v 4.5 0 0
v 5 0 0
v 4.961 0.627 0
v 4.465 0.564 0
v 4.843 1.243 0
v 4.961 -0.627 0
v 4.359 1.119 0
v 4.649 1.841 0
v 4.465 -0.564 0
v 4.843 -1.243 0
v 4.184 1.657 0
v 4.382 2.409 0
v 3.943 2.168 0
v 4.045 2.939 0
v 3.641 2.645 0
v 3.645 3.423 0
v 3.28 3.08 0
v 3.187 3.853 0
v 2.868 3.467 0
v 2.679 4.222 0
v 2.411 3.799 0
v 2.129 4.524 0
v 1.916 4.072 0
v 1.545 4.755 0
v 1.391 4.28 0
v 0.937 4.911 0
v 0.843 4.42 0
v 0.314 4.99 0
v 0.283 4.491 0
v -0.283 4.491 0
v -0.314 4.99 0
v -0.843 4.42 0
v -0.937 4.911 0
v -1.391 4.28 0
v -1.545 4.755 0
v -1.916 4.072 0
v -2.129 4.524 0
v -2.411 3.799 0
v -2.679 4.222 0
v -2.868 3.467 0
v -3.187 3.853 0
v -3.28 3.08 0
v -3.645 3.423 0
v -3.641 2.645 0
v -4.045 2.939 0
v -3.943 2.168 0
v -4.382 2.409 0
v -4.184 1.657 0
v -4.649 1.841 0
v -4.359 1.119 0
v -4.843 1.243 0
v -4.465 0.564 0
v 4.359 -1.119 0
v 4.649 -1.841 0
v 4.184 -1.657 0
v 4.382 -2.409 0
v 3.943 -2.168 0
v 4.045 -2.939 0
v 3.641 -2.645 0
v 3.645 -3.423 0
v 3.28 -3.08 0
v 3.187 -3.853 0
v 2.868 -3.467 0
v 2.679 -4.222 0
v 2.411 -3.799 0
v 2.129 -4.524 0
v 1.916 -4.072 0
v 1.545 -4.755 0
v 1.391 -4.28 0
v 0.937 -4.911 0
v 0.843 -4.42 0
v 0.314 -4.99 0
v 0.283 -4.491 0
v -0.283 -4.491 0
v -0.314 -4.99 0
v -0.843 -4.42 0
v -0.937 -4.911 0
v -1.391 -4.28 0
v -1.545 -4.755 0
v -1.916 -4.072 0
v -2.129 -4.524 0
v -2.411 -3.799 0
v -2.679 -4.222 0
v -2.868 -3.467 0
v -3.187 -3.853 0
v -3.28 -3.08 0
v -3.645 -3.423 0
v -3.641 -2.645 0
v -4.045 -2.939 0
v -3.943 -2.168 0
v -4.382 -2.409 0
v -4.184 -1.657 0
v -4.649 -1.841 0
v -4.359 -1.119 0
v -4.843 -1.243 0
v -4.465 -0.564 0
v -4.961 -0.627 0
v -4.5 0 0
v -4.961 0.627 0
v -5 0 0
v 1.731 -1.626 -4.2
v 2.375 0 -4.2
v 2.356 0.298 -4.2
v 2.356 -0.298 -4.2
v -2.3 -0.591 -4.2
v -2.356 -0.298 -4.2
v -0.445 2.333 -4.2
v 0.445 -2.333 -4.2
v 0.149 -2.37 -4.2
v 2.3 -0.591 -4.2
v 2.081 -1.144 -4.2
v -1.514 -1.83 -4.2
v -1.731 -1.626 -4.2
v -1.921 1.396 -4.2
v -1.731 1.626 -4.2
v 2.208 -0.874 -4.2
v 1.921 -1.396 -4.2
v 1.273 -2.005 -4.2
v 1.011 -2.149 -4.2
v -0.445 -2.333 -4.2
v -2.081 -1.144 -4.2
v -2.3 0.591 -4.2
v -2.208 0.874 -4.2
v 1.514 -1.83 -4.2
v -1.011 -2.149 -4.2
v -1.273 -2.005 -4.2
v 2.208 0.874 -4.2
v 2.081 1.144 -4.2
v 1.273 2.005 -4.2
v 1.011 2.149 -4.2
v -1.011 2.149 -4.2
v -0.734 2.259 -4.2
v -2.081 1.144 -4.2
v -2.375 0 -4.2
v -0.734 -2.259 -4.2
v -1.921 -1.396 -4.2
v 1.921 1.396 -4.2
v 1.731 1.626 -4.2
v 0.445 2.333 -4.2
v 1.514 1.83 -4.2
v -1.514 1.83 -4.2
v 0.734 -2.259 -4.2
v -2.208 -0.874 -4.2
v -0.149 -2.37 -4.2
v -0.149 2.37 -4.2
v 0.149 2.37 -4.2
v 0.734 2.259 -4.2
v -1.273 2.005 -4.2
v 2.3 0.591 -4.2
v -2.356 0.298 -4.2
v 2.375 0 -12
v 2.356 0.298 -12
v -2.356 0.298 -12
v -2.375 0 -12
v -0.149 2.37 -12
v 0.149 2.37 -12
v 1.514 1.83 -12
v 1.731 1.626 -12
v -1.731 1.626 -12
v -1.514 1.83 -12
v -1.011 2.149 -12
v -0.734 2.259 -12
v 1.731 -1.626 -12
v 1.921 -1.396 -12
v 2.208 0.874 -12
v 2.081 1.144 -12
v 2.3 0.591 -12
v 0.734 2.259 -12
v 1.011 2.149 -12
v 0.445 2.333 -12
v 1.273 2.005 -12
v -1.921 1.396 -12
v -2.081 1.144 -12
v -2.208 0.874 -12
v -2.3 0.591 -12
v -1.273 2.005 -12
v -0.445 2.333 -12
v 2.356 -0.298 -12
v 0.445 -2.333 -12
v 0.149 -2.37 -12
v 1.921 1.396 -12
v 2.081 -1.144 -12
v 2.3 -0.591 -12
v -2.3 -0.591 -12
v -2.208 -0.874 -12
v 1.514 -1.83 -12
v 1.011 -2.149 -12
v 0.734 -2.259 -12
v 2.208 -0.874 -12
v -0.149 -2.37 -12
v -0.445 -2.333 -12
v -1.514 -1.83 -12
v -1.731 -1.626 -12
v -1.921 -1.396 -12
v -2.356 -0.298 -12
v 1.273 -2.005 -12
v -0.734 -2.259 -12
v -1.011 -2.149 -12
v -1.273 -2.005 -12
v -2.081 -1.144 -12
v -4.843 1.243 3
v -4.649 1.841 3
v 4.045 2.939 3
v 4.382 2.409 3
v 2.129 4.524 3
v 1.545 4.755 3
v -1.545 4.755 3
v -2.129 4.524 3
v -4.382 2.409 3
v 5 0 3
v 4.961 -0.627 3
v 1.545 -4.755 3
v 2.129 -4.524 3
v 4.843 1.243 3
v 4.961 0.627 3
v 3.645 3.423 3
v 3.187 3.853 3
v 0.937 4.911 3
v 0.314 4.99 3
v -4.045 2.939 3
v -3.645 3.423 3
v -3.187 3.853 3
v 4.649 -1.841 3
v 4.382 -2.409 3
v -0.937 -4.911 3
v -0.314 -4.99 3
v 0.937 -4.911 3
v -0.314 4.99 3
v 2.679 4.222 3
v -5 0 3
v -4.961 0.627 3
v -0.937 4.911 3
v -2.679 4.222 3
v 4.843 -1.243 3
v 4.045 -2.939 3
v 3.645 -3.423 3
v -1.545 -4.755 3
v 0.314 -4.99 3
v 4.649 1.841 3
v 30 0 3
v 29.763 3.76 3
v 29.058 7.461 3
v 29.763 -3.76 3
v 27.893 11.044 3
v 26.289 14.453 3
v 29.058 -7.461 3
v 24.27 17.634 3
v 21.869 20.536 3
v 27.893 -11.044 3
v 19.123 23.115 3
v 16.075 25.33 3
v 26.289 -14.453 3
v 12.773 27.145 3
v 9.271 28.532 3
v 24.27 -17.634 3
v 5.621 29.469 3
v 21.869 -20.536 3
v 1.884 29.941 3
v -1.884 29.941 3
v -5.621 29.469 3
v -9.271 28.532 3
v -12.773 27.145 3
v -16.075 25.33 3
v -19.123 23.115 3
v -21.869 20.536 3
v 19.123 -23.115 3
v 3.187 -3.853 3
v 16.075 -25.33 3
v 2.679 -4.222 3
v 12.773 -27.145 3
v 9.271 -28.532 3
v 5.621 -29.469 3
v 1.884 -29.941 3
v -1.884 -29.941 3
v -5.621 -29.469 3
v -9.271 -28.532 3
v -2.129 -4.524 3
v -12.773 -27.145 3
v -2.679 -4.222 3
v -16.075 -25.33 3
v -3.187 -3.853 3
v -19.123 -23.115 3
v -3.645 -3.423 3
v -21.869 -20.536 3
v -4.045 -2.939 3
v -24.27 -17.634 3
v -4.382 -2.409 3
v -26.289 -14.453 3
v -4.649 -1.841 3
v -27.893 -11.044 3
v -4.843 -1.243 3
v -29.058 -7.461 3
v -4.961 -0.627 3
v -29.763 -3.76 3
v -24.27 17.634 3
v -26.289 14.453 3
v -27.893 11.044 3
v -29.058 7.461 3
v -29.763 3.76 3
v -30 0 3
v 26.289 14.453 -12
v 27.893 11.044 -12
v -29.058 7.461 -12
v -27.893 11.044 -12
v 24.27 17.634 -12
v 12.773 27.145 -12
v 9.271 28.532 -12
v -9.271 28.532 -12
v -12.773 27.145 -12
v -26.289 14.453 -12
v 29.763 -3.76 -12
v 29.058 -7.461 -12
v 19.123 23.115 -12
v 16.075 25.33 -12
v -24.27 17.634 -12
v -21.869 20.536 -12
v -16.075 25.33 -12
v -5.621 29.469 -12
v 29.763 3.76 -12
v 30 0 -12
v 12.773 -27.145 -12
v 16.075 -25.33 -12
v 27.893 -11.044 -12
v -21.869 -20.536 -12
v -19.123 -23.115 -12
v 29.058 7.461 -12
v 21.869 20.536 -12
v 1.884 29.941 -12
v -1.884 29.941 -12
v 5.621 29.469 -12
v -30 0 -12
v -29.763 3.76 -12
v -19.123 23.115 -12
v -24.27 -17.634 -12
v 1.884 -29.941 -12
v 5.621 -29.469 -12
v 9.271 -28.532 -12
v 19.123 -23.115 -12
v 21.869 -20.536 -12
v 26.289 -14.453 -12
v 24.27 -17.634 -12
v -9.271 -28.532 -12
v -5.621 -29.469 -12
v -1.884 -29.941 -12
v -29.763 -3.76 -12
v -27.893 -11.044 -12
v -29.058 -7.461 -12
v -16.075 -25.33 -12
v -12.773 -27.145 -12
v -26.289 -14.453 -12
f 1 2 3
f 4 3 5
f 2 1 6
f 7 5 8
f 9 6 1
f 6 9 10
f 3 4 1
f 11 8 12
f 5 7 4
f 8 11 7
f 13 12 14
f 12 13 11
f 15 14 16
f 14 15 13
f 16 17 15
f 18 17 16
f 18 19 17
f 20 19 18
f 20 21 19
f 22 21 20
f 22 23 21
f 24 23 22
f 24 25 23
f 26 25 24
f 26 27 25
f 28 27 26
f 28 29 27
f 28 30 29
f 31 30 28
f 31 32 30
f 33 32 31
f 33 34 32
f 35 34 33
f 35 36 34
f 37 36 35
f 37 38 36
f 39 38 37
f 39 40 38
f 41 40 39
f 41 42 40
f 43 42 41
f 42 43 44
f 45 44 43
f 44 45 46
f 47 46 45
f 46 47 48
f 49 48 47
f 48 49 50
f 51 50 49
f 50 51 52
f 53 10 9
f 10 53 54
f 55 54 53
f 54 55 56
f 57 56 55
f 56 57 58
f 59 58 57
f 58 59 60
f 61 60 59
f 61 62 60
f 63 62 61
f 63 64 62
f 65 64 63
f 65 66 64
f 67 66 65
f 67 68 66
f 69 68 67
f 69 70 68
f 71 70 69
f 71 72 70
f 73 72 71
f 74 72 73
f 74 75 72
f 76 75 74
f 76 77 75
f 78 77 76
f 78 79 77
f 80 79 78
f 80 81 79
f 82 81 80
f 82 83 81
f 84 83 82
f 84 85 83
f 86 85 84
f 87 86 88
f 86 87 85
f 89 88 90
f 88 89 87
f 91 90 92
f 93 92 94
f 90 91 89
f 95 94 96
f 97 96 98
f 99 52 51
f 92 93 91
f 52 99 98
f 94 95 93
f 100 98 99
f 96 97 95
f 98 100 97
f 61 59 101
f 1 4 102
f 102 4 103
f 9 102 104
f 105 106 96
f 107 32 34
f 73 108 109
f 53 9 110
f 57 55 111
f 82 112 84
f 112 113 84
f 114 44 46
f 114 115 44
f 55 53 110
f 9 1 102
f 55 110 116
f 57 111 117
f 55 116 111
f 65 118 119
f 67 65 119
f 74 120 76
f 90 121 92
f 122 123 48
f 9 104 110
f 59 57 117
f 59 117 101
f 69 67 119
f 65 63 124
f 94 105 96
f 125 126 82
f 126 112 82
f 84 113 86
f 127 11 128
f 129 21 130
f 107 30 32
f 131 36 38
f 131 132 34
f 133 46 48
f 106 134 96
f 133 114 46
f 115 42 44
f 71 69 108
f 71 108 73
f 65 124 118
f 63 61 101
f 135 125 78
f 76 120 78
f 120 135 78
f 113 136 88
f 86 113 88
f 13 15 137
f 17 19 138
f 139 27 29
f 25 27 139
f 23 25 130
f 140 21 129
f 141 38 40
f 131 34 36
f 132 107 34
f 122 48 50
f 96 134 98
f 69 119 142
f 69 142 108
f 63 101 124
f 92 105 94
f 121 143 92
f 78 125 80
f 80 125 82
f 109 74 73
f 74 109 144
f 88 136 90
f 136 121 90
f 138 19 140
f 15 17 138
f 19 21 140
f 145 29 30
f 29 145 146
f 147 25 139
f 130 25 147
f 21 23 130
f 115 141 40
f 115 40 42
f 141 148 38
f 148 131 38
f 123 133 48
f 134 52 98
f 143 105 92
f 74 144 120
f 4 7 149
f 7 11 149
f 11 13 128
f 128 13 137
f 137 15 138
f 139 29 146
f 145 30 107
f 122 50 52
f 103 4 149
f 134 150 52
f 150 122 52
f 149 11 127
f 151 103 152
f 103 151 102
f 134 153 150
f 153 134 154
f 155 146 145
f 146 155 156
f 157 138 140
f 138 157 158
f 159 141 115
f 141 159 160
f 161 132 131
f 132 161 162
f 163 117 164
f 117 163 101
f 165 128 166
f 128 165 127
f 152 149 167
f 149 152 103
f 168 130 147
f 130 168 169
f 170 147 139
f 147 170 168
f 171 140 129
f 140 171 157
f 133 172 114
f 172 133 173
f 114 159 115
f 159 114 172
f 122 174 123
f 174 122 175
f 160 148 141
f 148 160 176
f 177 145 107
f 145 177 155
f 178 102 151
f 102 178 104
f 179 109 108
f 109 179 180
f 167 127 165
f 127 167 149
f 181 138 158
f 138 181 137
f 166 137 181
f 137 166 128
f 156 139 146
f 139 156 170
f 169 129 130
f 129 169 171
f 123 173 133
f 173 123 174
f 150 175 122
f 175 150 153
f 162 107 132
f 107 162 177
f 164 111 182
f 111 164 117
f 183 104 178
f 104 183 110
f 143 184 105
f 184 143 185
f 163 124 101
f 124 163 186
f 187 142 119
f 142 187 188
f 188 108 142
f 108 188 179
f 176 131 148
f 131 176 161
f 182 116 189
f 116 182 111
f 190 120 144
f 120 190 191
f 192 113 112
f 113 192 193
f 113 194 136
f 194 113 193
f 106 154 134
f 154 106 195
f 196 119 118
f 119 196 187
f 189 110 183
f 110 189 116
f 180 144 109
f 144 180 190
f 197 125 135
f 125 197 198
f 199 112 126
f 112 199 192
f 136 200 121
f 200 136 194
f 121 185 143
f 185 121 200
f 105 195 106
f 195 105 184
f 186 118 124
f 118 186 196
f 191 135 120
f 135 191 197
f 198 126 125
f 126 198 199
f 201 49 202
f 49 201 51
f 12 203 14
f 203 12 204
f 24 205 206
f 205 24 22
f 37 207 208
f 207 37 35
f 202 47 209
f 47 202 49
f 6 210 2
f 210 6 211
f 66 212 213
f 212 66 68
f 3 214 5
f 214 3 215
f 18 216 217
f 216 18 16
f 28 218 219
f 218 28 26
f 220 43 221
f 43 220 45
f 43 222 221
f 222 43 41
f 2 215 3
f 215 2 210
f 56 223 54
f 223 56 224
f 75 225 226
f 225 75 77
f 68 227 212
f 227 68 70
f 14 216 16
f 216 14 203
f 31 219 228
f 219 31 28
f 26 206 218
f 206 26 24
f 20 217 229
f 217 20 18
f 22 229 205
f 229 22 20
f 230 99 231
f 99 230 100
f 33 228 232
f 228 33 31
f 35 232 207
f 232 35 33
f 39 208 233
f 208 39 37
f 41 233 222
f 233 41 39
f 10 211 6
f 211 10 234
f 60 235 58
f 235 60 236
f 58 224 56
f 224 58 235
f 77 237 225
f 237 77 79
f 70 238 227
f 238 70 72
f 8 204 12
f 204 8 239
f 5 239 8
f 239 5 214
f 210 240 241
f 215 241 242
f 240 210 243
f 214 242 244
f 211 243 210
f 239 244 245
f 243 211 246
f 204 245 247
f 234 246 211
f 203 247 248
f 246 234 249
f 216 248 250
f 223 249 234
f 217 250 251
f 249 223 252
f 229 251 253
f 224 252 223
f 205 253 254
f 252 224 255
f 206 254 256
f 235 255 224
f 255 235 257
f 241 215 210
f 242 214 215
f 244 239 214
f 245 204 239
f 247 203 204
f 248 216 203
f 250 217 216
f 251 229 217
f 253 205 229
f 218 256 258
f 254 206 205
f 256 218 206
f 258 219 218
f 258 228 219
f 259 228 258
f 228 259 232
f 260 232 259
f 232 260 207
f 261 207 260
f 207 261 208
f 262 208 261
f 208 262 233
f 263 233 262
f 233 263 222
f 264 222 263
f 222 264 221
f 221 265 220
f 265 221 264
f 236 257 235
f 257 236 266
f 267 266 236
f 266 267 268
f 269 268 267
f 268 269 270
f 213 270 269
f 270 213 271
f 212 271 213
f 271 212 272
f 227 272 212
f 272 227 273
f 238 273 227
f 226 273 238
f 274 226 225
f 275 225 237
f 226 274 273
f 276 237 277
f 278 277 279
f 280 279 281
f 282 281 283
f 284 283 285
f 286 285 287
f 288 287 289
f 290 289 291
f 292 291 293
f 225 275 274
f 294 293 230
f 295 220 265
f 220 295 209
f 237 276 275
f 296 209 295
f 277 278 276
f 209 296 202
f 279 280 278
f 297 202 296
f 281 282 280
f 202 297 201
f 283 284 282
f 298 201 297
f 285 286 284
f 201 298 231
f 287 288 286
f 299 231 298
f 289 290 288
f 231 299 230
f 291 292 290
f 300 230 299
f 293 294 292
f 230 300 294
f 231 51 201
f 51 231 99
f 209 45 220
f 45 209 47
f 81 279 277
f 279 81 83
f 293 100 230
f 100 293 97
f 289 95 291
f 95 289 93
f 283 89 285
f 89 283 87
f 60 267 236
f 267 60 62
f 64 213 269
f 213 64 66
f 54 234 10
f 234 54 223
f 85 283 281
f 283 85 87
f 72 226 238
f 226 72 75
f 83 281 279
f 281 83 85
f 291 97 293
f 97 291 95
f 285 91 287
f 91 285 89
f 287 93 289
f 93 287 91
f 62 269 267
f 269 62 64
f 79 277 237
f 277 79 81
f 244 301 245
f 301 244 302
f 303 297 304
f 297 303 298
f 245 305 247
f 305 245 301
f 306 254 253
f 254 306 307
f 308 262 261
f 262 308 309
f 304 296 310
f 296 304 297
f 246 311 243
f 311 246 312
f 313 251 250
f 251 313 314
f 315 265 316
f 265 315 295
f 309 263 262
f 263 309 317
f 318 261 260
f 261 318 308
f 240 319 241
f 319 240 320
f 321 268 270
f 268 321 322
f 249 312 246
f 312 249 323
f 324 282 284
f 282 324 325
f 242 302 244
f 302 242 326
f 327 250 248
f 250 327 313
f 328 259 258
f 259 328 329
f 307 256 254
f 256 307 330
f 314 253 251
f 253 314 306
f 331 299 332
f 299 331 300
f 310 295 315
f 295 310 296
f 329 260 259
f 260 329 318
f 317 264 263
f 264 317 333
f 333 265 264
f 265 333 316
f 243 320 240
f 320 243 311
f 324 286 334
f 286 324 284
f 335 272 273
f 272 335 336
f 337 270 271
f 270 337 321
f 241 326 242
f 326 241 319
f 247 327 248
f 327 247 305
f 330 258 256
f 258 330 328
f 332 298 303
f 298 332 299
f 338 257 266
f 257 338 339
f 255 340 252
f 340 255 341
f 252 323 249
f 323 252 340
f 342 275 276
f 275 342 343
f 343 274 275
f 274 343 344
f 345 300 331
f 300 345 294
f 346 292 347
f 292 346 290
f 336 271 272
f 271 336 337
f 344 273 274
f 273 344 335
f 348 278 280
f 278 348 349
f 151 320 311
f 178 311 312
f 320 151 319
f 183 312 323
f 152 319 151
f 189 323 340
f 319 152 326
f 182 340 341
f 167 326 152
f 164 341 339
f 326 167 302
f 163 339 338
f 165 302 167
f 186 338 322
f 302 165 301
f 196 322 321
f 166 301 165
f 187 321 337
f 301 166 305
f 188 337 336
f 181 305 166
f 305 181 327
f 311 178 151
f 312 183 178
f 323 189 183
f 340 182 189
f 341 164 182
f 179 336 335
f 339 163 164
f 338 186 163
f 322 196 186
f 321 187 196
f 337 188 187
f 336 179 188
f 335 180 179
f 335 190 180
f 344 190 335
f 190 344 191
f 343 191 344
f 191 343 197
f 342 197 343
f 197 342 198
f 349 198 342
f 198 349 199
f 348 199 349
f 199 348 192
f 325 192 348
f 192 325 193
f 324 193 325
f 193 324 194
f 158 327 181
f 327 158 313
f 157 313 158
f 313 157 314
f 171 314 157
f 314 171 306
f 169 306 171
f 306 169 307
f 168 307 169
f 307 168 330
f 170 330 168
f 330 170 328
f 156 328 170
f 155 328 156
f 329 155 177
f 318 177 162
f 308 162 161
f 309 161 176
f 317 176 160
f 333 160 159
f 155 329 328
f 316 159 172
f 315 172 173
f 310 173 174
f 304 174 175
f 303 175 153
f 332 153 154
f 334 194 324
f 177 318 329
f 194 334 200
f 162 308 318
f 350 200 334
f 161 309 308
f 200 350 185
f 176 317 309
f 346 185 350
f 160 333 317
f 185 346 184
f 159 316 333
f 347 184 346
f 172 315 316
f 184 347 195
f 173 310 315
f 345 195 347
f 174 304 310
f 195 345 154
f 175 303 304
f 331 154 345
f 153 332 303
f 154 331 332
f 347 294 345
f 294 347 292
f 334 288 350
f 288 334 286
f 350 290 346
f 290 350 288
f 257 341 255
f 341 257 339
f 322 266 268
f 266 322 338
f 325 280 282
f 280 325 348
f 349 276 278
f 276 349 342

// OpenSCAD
$fn = 50;


difference() {
	union() {
		translate(v = [0, 0, -12.0000000000]) {
			cylinder(h = 15, r = 30.0000000000);
		}
	}
	union() {
		translate(v = [0, 0, 0]) {
			rotate(a = [0, 0, 0]) {
				difference() {
					union() {
						translate(v = [0, 0, -15.0000000000]) {
							cylinder(h = 15, r = 2.2500000000);
						}
						translate(v = [0, 0, -4.2000000000]) {
							cylinder(h = 4.2000000000, r1 = 2.3750000000, r2 = 4.5000000000);
						}
						translate(v = [0, 0, -15.0000000000]) {
							cylinder(h = 15, r = 2.3750000000);
						}
						translate(v = [0, 0, -15.0000000000]) {
							cylinder(h = 15, r = 2.2500000000);
						}
					}
					union();
				}
			}
		}
		#cylinder(h = 3, r = 5.0000000000);
	}
}
